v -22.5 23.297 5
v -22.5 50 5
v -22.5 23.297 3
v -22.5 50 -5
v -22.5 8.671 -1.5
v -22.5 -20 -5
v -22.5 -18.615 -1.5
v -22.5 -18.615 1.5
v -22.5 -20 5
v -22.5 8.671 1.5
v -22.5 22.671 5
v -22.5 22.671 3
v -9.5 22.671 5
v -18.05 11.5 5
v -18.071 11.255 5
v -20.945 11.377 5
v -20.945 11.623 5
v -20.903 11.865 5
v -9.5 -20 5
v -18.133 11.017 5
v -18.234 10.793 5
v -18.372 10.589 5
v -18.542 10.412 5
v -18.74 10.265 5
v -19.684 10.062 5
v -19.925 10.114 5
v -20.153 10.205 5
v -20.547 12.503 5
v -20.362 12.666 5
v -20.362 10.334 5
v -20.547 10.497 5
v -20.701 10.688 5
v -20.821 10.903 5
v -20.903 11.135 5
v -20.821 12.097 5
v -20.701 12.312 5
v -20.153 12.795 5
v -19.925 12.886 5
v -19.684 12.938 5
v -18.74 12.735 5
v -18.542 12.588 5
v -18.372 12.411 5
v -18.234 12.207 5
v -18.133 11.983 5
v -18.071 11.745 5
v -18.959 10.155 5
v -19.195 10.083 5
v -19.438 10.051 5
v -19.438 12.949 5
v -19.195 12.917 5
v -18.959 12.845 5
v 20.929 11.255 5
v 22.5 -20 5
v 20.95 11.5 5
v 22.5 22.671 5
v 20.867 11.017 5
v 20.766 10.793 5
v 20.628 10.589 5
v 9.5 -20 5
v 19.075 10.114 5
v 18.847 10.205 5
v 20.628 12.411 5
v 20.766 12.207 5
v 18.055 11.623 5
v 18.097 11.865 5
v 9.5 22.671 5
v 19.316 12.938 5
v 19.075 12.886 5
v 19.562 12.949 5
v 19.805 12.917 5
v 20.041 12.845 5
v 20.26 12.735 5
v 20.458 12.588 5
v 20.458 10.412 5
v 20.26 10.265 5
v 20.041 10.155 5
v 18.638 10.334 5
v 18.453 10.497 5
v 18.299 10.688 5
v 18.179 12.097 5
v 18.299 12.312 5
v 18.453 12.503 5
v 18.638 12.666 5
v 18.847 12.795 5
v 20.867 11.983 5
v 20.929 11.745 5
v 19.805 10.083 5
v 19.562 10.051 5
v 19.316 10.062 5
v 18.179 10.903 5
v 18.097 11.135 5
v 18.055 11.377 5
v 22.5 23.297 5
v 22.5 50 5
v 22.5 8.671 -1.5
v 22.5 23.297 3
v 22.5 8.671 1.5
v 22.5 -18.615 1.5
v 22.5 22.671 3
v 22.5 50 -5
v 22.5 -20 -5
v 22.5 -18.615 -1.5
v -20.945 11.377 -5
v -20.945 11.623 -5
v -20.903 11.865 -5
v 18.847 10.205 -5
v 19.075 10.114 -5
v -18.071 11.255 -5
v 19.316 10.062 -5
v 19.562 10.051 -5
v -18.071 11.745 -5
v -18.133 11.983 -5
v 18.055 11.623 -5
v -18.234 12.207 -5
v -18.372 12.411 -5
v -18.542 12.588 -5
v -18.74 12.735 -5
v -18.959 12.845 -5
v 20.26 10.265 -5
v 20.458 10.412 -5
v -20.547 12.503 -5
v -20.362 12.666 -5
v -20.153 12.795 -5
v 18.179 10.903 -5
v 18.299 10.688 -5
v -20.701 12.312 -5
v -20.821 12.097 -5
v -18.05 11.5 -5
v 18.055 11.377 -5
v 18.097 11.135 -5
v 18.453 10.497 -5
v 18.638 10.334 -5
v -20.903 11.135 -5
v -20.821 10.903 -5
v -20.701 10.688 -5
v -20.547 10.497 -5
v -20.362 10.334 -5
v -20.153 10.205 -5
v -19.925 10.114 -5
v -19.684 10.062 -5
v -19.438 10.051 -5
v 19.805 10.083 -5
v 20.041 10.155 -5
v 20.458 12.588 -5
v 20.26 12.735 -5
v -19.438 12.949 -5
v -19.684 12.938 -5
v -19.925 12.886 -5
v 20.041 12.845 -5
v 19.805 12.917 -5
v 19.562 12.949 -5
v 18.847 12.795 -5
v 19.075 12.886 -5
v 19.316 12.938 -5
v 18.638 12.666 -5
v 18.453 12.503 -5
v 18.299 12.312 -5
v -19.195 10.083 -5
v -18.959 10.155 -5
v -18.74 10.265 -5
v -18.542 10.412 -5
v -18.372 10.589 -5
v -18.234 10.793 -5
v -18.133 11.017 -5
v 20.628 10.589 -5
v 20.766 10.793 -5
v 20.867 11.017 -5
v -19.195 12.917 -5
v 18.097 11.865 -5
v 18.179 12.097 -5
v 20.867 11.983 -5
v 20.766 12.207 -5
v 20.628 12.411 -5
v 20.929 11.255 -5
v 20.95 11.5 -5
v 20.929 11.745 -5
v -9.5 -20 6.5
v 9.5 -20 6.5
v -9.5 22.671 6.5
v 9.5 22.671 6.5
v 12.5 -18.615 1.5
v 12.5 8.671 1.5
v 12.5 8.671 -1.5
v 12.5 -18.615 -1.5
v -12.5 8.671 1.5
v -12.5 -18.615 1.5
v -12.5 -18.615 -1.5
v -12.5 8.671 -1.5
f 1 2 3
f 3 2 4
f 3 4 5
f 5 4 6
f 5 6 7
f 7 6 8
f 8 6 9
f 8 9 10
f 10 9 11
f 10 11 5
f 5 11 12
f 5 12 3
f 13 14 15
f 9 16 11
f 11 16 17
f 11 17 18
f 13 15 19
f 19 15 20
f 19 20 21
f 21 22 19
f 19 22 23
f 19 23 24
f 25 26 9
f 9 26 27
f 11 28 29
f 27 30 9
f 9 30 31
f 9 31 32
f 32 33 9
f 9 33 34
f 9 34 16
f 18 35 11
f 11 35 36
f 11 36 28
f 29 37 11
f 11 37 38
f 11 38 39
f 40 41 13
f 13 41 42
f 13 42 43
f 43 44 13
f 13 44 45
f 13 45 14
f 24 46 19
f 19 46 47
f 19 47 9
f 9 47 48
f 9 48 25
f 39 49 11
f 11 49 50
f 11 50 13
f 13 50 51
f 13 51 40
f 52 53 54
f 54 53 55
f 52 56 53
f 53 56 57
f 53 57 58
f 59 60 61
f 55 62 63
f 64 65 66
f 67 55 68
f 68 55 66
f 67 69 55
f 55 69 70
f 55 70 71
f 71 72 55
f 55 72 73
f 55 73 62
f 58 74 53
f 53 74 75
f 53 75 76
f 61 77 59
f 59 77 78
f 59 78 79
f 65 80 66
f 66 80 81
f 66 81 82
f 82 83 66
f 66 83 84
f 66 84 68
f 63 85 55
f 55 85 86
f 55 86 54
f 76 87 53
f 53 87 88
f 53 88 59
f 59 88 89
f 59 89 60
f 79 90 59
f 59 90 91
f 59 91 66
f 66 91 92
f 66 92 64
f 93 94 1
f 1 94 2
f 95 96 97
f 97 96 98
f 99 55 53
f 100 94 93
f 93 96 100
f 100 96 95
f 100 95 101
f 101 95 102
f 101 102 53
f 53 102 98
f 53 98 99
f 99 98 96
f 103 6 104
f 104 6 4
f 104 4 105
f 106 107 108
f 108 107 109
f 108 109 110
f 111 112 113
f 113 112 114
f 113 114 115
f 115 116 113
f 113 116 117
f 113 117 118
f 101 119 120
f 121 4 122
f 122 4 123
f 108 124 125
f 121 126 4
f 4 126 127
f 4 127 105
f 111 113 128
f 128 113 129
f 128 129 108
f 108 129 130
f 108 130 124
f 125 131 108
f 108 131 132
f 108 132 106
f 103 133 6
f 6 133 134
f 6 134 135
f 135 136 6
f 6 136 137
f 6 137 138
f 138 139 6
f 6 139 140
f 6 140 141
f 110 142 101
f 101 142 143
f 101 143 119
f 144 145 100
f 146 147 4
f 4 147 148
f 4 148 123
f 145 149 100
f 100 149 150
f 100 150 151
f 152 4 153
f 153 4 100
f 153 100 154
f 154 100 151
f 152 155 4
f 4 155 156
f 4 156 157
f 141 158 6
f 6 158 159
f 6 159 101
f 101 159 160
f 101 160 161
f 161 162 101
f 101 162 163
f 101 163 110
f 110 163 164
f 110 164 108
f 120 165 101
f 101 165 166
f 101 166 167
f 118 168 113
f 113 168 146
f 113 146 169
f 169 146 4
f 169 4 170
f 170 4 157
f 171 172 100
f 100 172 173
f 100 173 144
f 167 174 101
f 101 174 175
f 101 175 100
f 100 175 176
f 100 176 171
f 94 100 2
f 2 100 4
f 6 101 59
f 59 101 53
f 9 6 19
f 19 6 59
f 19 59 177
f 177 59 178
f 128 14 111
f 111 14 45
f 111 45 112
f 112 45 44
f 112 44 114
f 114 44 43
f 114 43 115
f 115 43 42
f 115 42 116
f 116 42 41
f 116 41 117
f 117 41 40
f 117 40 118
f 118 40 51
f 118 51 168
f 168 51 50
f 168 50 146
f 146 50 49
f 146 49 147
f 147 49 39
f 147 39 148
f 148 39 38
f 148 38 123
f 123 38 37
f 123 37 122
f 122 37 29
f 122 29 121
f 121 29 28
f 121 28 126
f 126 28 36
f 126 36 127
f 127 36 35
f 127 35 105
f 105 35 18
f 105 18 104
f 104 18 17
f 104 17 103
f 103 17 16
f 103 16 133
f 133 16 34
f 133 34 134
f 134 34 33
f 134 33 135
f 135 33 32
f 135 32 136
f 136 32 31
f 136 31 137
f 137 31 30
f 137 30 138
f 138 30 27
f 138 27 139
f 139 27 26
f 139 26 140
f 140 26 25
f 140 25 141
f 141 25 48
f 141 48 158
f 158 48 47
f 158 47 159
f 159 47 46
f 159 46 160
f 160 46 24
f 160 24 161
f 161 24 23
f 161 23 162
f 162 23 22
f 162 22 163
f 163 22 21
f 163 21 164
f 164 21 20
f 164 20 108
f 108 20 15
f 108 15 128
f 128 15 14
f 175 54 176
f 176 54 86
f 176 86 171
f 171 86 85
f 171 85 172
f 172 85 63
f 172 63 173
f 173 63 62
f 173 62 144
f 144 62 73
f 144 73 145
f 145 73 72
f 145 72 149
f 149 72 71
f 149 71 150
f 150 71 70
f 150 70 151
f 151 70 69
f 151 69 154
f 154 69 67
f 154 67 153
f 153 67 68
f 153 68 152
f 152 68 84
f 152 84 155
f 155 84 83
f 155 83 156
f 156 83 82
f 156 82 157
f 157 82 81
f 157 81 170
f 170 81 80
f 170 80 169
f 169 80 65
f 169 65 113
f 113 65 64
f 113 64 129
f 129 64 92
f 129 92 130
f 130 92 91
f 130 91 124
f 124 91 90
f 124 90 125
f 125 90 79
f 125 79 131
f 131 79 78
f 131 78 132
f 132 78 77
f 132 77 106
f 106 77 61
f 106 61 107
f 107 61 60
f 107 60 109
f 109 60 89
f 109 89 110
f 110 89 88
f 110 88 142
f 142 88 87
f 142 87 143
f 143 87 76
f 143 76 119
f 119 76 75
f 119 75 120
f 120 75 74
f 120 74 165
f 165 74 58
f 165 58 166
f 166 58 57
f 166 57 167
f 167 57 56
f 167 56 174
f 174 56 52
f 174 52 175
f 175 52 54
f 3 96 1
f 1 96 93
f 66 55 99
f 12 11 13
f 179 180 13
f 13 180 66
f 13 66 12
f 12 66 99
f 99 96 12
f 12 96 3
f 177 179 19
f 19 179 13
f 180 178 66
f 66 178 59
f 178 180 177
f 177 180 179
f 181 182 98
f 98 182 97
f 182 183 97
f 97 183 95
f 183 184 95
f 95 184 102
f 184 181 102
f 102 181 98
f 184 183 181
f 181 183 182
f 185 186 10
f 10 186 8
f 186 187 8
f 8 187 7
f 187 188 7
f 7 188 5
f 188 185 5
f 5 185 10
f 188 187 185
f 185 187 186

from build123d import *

# Parameters (mm, degrees)
SKETCH2_W           = 45
SKETCH2_H           = 10
BOSS_EXTRUDE1_DEPTH = 40
SKETCH4_W           = 45
SKETCH4_H           = 10
BOSS_EXTRUDE2_DEPTH = 10
SKETCH8_W           = 45
SKETCH8_H           = 10
BOSS_EXTRUDE3_DEPTH = 20
SKETCH9_R           = 1.45
CUT_EXTRUDE2_DEPTH  = 20
SKETCH10_W          = 45
SKETCH10_H          = 0.626165357
CUT_EXTRUDE3_DEPTH  = 2
SKETCH11_W          = 19
SKETCH11_H          = 42.671327575
BOSS_EXTRUDE4_DEPTH = 1.5
SKETCH12_W          = 3
SKETCH12_H          = 27.286335608
CUT_EXTRUDE6_DEPTH  = 10


with BuildPart() as part:
    # Sketch2 → Boss-Extrude1 (new body)
    with BuildSketch(Plane(origin=(0, 0, 0), x_dir=(1, 0, 0), z_dir=(0, 1, 0))):
        Rectangle(SKETCH2_W, SKETCH2_H)
    extrude(amount=BOSS_EXTRUDE1_DEPTH)

    # Sketch4 → Boss-Extrude2 (add)
    with BuildSketch(Plane(origin=(0, 40, 0), x_dir=(1, 0, 0), z_dir=(0, 1, 0))):
        Rectangle(SKETCH4_W, SKETCH4_H)
    extrude(amount=BOSS_EXTRUDE2_DEPTH)

    # Sketch8 → Boss-Extrude3 (add)
    with BuildSketch(Plane.XZ):
        Rectangle(SKETCH8_W, SKETCH8_H)
    extrude(amount=BOSS_EXTRUDE3_DEPTH)

    # Sketch9 → Cut-Extrude2 (cut)
    with BuildSketch(Plane.XY.offset(5)):
        with Locations((19.5, 11.5)):
            Circle(SKETCH9_R)
        with Locations((-19.5, 11.5)):
            Circle(SKETCH9_R)
    extrude(amount=-CUT_EXTRUDE2_DEPTH, mode=Mode.SUBTRACT)

    # Sketch10 → Cut-Extrude3 (cut)
    with BuildSketch(Plane.XY.offset(5)):
        with Locations((0, 22.984410254)):
            Rectangle(SKETCH10_W, SKETCH10_H)
    extrude(amount=-CUT_EXTRUDE3_DEPTH, mode=Mode.SUBTRACT)

    # Sketch11 → Boss-Extrude4 (add)
    with BuildSketch(Plane.XY.offset(5)):
        with Locations((0, 1.335663788)):
            Rectangle(SKETCH11_W, SKETCH11_H)
    extrude(amount=BOSS_EXTRUDE4_DEPTH)

    # Sketch12 → Cut-Extrude6 (cut)
    with BuildSketch(Plane(origin=(22.5, 0, 0), x_dir=(0, 0, -1), z_dir=(1, 0, 0))):
        with Locations((0, -4.971840229)):
            Rectangle(SKETCH12_W, SKETCH12_H)
    cut_extrude6 = extrude(amount=-CUT_EXTRUDE6_DEPTH, mode=Mode.SUBTRACT)

    # Mirror1: Cut-Extrude6 across plane
    add(cut_extrude6.mirror(Plane(origin=(0, 0, 0), x_dir=(0, 0, 1), z_dir=(1, 0, 0))), mode=Mode.SUBTRACT)


solid = part.part
